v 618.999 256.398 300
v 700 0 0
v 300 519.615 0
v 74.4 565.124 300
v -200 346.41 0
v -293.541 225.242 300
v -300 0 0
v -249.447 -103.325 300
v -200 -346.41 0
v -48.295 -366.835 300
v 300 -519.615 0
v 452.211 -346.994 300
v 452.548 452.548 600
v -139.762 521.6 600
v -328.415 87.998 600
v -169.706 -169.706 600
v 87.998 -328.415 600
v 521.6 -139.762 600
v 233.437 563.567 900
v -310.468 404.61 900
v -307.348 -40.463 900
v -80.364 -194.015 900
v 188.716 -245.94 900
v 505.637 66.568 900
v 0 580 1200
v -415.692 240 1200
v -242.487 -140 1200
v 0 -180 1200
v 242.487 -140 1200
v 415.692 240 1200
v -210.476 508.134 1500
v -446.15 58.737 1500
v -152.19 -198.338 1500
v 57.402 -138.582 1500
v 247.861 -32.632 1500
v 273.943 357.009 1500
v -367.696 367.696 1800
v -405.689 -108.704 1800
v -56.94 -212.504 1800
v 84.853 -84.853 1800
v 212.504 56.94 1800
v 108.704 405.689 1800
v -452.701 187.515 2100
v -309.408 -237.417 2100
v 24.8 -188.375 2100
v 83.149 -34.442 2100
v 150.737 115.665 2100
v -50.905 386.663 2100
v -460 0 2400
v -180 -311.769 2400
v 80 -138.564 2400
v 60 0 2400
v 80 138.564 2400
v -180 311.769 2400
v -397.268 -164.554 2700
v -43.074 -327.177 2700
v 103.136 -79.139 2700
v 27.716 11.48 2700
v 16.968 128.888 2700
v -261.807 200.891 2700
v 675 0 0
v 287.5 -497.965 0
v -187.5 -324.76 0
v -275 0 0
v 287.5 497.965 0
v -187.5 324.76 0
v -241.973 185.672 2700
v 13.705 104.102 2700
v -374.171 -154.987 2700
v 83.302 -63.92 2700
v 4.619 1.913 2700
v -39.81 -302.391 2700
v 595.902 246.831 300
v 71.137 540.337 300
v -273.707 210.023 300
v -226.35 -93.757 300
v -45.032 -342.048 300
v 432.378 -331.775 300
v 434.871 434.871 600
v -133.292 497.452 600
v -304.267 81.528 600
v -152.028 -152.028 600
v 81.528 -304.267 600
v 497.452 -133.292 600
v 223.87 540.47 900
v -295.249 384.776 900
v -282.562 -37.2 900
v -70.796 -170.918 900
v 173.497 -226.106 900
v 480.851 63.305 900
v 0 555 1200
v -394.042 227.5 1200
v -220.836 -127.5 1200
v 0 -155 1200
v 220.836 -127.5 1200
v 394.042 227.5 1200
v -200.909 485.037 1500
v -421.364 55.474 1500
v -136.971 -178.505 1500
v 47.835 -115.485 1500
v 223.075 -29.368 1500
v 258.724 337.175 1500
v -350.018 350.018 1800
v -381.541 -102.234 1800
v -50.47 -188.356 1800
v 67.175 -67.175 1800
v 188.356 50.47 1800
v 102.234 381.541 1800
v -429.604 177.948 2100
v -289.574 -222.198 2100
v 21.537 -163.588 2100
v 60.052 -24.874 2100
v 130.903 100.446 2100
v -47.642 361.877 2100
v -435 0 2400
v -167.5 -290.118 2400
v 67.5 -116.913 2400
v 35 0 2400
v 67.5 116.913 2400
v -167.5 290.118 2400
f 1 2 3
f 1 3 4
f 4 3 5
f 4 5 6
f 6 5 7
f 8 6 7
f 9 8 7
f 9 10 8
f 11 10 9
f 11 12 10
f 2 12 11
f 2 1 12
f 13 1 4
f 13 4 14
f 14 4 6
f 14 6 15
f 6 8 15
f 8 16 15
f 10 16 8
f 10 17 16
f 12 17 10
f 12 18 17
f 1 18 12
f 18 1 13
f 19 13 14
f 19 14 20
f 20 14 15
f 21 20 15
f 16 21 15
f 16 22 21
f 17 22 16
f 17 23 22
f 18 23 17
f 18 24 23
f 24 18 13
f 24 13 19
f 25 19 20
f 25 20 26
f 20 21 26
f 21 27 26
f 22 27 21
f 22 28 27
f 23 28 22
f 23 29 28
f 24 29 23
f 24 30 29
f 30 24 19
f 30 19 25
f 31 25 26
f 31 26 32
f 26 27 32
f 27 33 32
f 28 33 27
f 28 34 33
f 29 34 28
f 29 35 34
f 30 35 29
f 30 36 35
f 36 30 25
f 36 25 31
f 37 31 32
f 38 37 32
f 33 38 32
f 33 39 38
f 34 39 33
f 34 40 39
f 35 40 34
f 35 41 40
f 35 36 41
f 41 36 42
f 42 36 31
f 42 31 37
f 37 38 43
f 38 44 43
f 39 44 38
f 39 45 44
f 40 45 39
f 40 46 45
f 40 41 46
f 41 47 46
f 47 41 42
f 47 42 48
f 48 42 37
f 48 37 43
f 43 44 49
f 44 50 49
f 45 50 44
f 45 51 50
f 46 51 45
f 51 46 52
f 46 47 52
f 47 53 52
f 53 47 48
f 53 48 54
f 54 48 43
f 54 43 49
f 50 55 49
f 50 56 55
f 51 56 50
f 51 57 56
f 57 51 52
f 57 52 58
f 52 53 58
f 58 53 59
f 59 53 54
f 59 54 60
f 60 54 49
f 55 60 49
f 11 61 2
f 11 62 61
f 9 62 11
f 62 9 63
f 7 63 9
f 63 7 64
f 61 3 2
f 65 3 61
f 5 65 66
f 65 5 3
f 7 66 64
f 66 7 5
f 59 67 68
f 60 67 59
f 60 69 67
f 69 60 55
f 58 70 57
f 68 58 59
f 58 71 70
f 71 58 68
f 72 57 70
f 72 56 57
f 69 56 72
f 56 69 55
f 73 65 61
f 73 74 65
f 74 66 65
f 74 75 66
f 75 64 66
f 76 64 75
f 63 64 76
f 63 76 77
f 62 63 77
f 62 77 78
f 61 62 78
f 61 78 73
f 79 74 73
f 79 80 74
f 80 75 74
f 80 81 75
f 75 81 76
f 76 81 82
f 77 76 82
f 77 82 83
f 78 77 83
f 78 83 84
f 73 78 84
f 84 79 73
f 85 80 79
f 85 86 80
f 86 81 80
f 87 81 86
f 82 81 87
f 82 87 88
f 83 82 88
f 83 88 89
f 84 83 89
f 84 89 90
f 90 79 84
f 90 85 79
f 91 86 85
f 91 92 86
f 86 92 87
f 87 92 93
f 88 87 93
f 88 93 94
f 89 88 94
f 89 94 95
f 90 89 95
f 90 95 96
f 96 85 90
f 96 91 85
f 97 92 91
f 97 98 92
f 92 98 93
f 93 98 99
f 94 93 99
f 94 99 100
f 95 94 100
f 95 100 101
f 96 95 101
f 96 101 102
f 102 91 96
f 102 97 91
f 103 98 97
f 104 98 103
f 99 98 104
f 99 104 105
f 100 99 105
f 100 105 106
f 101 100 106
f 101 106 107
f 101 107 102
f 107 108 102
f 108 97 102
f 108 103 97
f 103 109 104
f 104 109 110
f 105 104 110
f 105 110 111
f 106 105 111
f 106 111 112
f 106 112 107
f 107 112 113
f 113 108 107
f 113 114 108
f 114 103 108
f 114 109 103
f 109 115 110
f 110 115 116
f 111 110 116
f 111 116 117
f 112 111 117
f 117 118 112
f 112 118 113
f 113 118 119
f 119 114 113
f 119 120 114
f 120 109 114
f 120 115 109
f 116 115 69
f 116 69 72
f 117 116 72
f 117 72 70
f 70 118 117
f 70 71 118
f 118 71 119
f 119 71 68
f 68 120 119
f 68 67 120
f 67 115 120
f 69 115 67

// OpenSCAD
difference() {
	polyhedron(faces = [[0, 6, 1], [1, 6, 7], [1, 7, 2], [2, 7, 8], [2, 8, 3], [3, 8, 9], [3, 9, 4], [4, 9, 10], [4, 10, 5], [5, 10, 11], [5, 11, 0], [0, 11, 6], [6, 12, 7], [7, 12, 13], [7, 13, 8], [8, 13, 14], [8, 14, 9], [9, 14, 15], [9, 15, 10], [10, 15, 16], [10, 16, 11], [11, 16, 17], [11, 17, 6], [6, 17, 12], [12, 18, 13], [13, 18, 19], [13, 19, 14], [14, 19, 20], [14, 20, 15], [15, 20, 21], [15, 21, 16], [16, 21, 22], [16, 22, 17], [17, 22, 23], [17, 23, 12], [12, 23, 18], [18, 24, 19], [19, 24, 25], [19, 25, 20], [20, 25, 26], [20, 26, 21], [21, 26, 27], [21, 27, 22], [22, 27, 28], [22, 28, 23], [23, 28, 29], [23, 29, 18], [18, 29, 24], [24, 30, 25], [25, 30, 31], [25, 31, 26], [26, 31, 32], [26, 32, 27], [27, 32, 33], [27, 33, 28], [28, 33, 34], [28, 34, 29], [29, 34, 35], [29, 35, 24], [24, 35, 30], [30, 36, 31], [31, 36, 37], [31, 37, 32], [32, 37, 38], [32, 38, 33], [33, 38, 39], [33, 39, 34], [34, 39, 40], [34, 40, 35], [35, 40, 41], [35, 41, 30], [30, 41, 36], [36, 42, 37], [37, 42, 43], [37, 43, 38], [38, 43, 44], [38, 44, 39], [39, 44, 45], [39, 45, 40], [40, 45, 46], [40, 46, 41], [41, 46, 47], [41, 47, 36], [36, 47, 42], [42, 48, 43], [43, 48, 49], [43, 49, 44], [44, 49, 50], [44, 50, 45], [45, 50, 51], [45, 51, 46], [46, 51, 52], [46, 52, 47], [47, 52, 53], [47, 53, 42], [42, 53, 48], [48, 54, 49], [49, 54, 55], [49, 55, 50], [50, 55, 56], [50, 56, 51], [51, 56, 57], [51, 57, 52], [52, 57, 58], [52, 58, 53], [53, 58, 59], [53, 59, 48], [48, 59, 54], [1, 60, 0], [54, 61, 55], [2, 60, 1], [55, 61, 56], [3, 60, 2], [56, 61, 57], [4, 60, 3], [57, 61, 58], [5, 60, 4], [58, 61, 59], [0, 60, 5], [59, 61, 54]], points = [[700.0000000000, 0.0000000000, 0.0000000000], [300.0000000000, 519.6152422707, 0.0000000000], [-200.0000000000, 346.4101615138, 0.0000000000], [-300.0000000000, 0.0000000000, 0.0000000000], [-200.0000000000, -346.4101615138, 0.0000000000], [300.0000000000, -519.6152422707, 0.0000000000], [618.9992867826, 256.3978996846, 300.0000000000], [74.3999295654, 565.1235709831, 300.0000000000], [-293.5407359078, 225.2417287332, 300.0000000000], [-249.4474737780, -103.3245267386, 300.0000000000], [-48.2946911214, -366.8345987083, 300.0000000000], [452.2114039660, -346.9940145350, 300.0000000000], [452.5483399594, 452.5483399594, 600.0000000000], [-139.7622843554, 521.5999461961, 600.0000000000], [-328.4147809383, 87.9984753349, 600.0000000000], [-169.7056274848, -169.7056274848, 600.0000000000], [87.9984753349, -328.4147809383, 600.0000000000], [521.5999461961, -139.7622843554, 600.0000000000], [233.4368937427, 563.5665148319, 900.0000000000], [-310.4683287944, 404.6102035485, 900.0000000000], [-307.3479070259, -40.4631195882, 900.0000000000], [-80.3635207967, -194.0147018274, 900.0000000000], [188.7160429927, -245.9395354903, 900.0000000000], [505.6368793006, 66.5683580322, 900.0000000000], [0.0000000000, 580.0000000000, 1200.0000000000], [-415.6921938165, 240.0000000000, 1200.0000000000], [-242.4871130596, -140.0000000000, 1200.0000000000], [-0.0000000000, -180.0000000000, 1200.0000000000], [242.4871130596, -140.0000000000, 1200.0000000000], [415.6921938165, 240.0000000000, 1200.0000000000], [-210.4758878008, 508.1337428812, 1500.0000000000], [-446.1501876182, 58.7367864990, 1500.0000000000], [-152.1903572522, -198.3383350728, 1500.0000000000], [57.4025148548, -138.5819298767, 1500.0000000000], [247.8612153435, -32.6315480550, 1500.0000000000], [273.9426430539, 357.0090031311, 1500.0000000000], [-367.6955262170, 367.6955262170, 1800.0000000000], [-405.6888470414, -108.7039989431, 1800.0000000000], [-56.9401899226, -212.5036817836, 1800.0000000000], [84.8528137424, -84.8528137424, 1800.0000000000], [212.5036817836, 56.9401899226, 1800.0000000000], [108.7039989431, 405.6888470414, 1800.0000000000], [-452.7009709305, 187.5148818589, 2100.0000000000], [-309.4078027136, -237.4169573134, 2100.0000000000], [24.7999765218, -188.3745236610, 2100.0000000000], [83.1491579260, -34.4415089129, 2100.0000000000], [150.7371346553, 115.6646715117, 2100.0000000000], [-50.9052149658, 386.6634959358, 2100.0000000000], [-460.0000000000, 0.0000000000, 2400.0000000000], [-180.0000000000, -311.7691453624, 2400.0000000000], [80.0000000000, -138.5640646055, 2400.0000000000], [60.0000000000, -0.0000000000, 2400.0000000000], [80.0000000000, 138.5640646055, 2400.0000000000], [-180.0000000000, 311.7691453624, 2400.0000000000], [-397.2681989799, -164.5538759170, 2700.0000000000], [-43.0736434326, -327.1768042534, 2700.0000000000], [103.1359342379, -79.1389857711, 2700.0000000000], [27.7163859753, 11.4805029710, 2700.0000000000], [16.9684049886, 128.8878319786, 2700.0000000000], [-261.8066022961, 200.8912715729, 2700.0000000000], [100.0000000000, 0.0000000000, 0.0000000000], [-92.3879532511, -38.2683432365, 2700.0000000000]]);
	polyhedron(faces = [[0, 6, 1], [1, 6, 7], [1, 7, 2], [2, 7, 8], [2, 8, 3], [3, 8, 9], [3, 9, 4], [4, 9, 10], [4, 10, 5], [5, 10, 11], [5, 11, 0], [0, 11, 6], [6, 12, 7], [7, 12, 13], [7, 13, 8], [8, 13, 14], [8, 14, 9], [9, 14, 15], [9, 15, 10], [10, 15, 16], [10, 16, 11], [11, 16, 17], [11, 17, 6], [6, 17, 12], [12, 18, 13], [13, 18, 19], [13, 19, 14], [14, 19, 20], [14, 20, 15], [15, 20, 21], [15, 21, 16], [16, 21, 22], [16, 22, 17], [17, 22, 23], [17, 23, 12], [12, 23, 18], [18, 24, 19], [19, 24, 25], [19, 25, 20], [20, 25, 26], [20, 26, 21], [21, 26, 27], [21, 27, 22], [22, 27, 28], [22, 28, 23], [23, 28, 29], [23, 29, 18], [18, 29, 24], [24, 30, 25], [25, 30, 31], [25, 31, 26], [26, 31, 32], [26, 32, 27], [27, 32, 33], [27, 33, 28], [28, 33, 34], [28, 34, 29], [29, 34, 35], [29, 35, 24], [24, 35, 30], [30, 36, 31], [31, 36, 37], [31, 37, 32], [32, 37, 38], [32, 38, 33], [33, 38, 39], [33, 39, 34], [34, 39, 40], [34, 40, 35], [35, 40, 41], [35, 41, 30], [30, 41, 36], [36, 42, 37], [37, 42, 43], [37, 43, 38], [38, 43, 44], [38, 44, 39], [39, 44, 45], [39, 45, 40], [40, 45, 46], [40, 46, 41], [41, 46, 47], [41, 47, 36], [36, 47, 42], [42, 48, 43], [43, 48, 49], [43, 49, 44], [44, 49, 50], [44, 50, 45], [45, 50, 51], [45, 51, 46], [46, 51, 52], [46, 52, 47], [47, 52, 53], [47, 53, 42], [42, 53, 48], [48, 54, 49], [49, 54, 55], [49, 55, 50], [50, 55, 56], [50, 56, 51], [51, 56, 57], [51, 57, 52], [52, 57, 58], [52, 58, 53], [53, 58, 59], [53, 59, 48], [48, 59, 54], [1, 60, 0], [54, 61, 55], [2, 60, 1], [55, 61, 56], [3, 60, 2], [56, 61, 57], [4, 60, 3], [57, 61, 58], [5, 60, 4], [58, 61, 59], [0, 60, 5], [59, 61, 54]], points = [[675.0000000000, 0.0000000000, 0.0000000000], [287.5000000000, 497.9646071761, 0.0000000000], [-187.5000000000, 324.7595264192, 0.0000000000], [-275.0000000000, 0.0000000000, 0.0000000000], [-187.5000000000, -324.7595264192, 0.0000000000], [287.5000000000, -497.9646071761, 0.0000000000], [595.9022984698, 246.8308138755, 300.0000000000], [71.1367747599, 540.3374494487, 300.0000000000], [-273.7069024005, 210.0226930080, 300.0000000000], [-226.3504854653, -93.7574409294, 300.0000000000], [-45.0315363159, -342.0484771740, 300.0000000000], [432.3775704587, -331.7749788098, 300.0000000000], [434.8706704297, 434.8706704297, 600.0000000000], [-133.2918082278, 497.4518005389, 600.0000000000], [-304.2666352811, 81.5279992073, 600.0000000000], [-152.0279579551, -152.0279579551, 600.0000000000], [81.5279992073, -304.2666352811, 600.0000000000], [497.4518005389, -133.2918082278, 600.0000000000], [223.8698079336, 540.4695265191, 900.0000000000], [-295.2492930692, 384.7763700412, 900.0000000000], [-282.5617854915, -37.1999647827, 900.0000000000], [-70.7964349875, -170.9177135146, 900.0000000000], [173.4970072675, -226.1057019830, 900.0000000000], [480.8507577663, 63.3052032267, 900.0000000000], [0.0000000000, 555.0000000000, 1200.0000000000], [-394.0415587219, 227.5000000000, 1200.0000000000], [-220.8364779650, -127.5000000000, 1200.0000000000], [-0.0000000000, -155.0000000000, 1200.0000000000], [220.8364779650, -127.5000000000, 1200.0000000000], [394.0415587219, 227.5000000000, 1200.0000000000], [-200.9088019917, 485.0367545684, 1500.0000000000], [-421.3640660839, 55.4736316935, 1500.0000000000], [-136.9713215270, -178.5045015655, 1500.0000000000], [47.8354290456, -115.4849415639, 1500.0000000000], [223.0750938091, -29.3683932495, 1500.0000000000], [258.7236073287, 337.1751696238, 1500.0000000000], [-350.0178566873, 350.0178566873, 1800.0000000000], [-381.5407013842, -102.2335228155, 1800.0000000000], [-50.4697137950, -188.3555361264, 1800.0000000000], [67.1751442127, -67.1751442127, 1800.0000000000], [188.3555361264, 50.4697137950, 1800.0000000000], [102.2335228155, 381.5407013842, 1800.0000000000], [-429.6039826177, 177.9477960498, 2100.0000000000], [-289.5739692063, -222.1979215882, 2100.0000000000], [21.5368217163, -163.5884021267, 2100.0000000000], [60.0521696132, -24.8744231037, 2100.0000000000], [130.9033011481, 100.4456357864, 2100.0000000000], [-47.6420601603, 361.8773744014, 2100.0000000000], [-435.0000000000, 0.0000000000, 2400.0000000000], [-167.5000000000, -290.1185102678, 2400.0000000000], [67.5000000000, -116.9134295109, 2400.0000000000], [35.0000000000, -0.0000000000, 2400.0000000000], [67.5000000000, 116.9134295109, 2400.0000000000], [-167.5000000000, 290.1185102678, 2400.0000000000], [-374.1712106671, -154.9867901079, 2700.0000000000], [-39.8104886271, -302.3906827190, 2700.0000000000], [83.3021007306, -63.9199500459, 2700.0000000000], [4.6193976626, 1.9134171618, 2700.0000000000], [13.7052501831, 104.1017104442, 2700.0000000000], [-241.9727687888, 185.6722358477, 2700.0000000000], [100.0000000000, 0.0000000000, 0.0000000000], [-92.3879532511, -38.2683432365, 2700.0000000000]]);
}
